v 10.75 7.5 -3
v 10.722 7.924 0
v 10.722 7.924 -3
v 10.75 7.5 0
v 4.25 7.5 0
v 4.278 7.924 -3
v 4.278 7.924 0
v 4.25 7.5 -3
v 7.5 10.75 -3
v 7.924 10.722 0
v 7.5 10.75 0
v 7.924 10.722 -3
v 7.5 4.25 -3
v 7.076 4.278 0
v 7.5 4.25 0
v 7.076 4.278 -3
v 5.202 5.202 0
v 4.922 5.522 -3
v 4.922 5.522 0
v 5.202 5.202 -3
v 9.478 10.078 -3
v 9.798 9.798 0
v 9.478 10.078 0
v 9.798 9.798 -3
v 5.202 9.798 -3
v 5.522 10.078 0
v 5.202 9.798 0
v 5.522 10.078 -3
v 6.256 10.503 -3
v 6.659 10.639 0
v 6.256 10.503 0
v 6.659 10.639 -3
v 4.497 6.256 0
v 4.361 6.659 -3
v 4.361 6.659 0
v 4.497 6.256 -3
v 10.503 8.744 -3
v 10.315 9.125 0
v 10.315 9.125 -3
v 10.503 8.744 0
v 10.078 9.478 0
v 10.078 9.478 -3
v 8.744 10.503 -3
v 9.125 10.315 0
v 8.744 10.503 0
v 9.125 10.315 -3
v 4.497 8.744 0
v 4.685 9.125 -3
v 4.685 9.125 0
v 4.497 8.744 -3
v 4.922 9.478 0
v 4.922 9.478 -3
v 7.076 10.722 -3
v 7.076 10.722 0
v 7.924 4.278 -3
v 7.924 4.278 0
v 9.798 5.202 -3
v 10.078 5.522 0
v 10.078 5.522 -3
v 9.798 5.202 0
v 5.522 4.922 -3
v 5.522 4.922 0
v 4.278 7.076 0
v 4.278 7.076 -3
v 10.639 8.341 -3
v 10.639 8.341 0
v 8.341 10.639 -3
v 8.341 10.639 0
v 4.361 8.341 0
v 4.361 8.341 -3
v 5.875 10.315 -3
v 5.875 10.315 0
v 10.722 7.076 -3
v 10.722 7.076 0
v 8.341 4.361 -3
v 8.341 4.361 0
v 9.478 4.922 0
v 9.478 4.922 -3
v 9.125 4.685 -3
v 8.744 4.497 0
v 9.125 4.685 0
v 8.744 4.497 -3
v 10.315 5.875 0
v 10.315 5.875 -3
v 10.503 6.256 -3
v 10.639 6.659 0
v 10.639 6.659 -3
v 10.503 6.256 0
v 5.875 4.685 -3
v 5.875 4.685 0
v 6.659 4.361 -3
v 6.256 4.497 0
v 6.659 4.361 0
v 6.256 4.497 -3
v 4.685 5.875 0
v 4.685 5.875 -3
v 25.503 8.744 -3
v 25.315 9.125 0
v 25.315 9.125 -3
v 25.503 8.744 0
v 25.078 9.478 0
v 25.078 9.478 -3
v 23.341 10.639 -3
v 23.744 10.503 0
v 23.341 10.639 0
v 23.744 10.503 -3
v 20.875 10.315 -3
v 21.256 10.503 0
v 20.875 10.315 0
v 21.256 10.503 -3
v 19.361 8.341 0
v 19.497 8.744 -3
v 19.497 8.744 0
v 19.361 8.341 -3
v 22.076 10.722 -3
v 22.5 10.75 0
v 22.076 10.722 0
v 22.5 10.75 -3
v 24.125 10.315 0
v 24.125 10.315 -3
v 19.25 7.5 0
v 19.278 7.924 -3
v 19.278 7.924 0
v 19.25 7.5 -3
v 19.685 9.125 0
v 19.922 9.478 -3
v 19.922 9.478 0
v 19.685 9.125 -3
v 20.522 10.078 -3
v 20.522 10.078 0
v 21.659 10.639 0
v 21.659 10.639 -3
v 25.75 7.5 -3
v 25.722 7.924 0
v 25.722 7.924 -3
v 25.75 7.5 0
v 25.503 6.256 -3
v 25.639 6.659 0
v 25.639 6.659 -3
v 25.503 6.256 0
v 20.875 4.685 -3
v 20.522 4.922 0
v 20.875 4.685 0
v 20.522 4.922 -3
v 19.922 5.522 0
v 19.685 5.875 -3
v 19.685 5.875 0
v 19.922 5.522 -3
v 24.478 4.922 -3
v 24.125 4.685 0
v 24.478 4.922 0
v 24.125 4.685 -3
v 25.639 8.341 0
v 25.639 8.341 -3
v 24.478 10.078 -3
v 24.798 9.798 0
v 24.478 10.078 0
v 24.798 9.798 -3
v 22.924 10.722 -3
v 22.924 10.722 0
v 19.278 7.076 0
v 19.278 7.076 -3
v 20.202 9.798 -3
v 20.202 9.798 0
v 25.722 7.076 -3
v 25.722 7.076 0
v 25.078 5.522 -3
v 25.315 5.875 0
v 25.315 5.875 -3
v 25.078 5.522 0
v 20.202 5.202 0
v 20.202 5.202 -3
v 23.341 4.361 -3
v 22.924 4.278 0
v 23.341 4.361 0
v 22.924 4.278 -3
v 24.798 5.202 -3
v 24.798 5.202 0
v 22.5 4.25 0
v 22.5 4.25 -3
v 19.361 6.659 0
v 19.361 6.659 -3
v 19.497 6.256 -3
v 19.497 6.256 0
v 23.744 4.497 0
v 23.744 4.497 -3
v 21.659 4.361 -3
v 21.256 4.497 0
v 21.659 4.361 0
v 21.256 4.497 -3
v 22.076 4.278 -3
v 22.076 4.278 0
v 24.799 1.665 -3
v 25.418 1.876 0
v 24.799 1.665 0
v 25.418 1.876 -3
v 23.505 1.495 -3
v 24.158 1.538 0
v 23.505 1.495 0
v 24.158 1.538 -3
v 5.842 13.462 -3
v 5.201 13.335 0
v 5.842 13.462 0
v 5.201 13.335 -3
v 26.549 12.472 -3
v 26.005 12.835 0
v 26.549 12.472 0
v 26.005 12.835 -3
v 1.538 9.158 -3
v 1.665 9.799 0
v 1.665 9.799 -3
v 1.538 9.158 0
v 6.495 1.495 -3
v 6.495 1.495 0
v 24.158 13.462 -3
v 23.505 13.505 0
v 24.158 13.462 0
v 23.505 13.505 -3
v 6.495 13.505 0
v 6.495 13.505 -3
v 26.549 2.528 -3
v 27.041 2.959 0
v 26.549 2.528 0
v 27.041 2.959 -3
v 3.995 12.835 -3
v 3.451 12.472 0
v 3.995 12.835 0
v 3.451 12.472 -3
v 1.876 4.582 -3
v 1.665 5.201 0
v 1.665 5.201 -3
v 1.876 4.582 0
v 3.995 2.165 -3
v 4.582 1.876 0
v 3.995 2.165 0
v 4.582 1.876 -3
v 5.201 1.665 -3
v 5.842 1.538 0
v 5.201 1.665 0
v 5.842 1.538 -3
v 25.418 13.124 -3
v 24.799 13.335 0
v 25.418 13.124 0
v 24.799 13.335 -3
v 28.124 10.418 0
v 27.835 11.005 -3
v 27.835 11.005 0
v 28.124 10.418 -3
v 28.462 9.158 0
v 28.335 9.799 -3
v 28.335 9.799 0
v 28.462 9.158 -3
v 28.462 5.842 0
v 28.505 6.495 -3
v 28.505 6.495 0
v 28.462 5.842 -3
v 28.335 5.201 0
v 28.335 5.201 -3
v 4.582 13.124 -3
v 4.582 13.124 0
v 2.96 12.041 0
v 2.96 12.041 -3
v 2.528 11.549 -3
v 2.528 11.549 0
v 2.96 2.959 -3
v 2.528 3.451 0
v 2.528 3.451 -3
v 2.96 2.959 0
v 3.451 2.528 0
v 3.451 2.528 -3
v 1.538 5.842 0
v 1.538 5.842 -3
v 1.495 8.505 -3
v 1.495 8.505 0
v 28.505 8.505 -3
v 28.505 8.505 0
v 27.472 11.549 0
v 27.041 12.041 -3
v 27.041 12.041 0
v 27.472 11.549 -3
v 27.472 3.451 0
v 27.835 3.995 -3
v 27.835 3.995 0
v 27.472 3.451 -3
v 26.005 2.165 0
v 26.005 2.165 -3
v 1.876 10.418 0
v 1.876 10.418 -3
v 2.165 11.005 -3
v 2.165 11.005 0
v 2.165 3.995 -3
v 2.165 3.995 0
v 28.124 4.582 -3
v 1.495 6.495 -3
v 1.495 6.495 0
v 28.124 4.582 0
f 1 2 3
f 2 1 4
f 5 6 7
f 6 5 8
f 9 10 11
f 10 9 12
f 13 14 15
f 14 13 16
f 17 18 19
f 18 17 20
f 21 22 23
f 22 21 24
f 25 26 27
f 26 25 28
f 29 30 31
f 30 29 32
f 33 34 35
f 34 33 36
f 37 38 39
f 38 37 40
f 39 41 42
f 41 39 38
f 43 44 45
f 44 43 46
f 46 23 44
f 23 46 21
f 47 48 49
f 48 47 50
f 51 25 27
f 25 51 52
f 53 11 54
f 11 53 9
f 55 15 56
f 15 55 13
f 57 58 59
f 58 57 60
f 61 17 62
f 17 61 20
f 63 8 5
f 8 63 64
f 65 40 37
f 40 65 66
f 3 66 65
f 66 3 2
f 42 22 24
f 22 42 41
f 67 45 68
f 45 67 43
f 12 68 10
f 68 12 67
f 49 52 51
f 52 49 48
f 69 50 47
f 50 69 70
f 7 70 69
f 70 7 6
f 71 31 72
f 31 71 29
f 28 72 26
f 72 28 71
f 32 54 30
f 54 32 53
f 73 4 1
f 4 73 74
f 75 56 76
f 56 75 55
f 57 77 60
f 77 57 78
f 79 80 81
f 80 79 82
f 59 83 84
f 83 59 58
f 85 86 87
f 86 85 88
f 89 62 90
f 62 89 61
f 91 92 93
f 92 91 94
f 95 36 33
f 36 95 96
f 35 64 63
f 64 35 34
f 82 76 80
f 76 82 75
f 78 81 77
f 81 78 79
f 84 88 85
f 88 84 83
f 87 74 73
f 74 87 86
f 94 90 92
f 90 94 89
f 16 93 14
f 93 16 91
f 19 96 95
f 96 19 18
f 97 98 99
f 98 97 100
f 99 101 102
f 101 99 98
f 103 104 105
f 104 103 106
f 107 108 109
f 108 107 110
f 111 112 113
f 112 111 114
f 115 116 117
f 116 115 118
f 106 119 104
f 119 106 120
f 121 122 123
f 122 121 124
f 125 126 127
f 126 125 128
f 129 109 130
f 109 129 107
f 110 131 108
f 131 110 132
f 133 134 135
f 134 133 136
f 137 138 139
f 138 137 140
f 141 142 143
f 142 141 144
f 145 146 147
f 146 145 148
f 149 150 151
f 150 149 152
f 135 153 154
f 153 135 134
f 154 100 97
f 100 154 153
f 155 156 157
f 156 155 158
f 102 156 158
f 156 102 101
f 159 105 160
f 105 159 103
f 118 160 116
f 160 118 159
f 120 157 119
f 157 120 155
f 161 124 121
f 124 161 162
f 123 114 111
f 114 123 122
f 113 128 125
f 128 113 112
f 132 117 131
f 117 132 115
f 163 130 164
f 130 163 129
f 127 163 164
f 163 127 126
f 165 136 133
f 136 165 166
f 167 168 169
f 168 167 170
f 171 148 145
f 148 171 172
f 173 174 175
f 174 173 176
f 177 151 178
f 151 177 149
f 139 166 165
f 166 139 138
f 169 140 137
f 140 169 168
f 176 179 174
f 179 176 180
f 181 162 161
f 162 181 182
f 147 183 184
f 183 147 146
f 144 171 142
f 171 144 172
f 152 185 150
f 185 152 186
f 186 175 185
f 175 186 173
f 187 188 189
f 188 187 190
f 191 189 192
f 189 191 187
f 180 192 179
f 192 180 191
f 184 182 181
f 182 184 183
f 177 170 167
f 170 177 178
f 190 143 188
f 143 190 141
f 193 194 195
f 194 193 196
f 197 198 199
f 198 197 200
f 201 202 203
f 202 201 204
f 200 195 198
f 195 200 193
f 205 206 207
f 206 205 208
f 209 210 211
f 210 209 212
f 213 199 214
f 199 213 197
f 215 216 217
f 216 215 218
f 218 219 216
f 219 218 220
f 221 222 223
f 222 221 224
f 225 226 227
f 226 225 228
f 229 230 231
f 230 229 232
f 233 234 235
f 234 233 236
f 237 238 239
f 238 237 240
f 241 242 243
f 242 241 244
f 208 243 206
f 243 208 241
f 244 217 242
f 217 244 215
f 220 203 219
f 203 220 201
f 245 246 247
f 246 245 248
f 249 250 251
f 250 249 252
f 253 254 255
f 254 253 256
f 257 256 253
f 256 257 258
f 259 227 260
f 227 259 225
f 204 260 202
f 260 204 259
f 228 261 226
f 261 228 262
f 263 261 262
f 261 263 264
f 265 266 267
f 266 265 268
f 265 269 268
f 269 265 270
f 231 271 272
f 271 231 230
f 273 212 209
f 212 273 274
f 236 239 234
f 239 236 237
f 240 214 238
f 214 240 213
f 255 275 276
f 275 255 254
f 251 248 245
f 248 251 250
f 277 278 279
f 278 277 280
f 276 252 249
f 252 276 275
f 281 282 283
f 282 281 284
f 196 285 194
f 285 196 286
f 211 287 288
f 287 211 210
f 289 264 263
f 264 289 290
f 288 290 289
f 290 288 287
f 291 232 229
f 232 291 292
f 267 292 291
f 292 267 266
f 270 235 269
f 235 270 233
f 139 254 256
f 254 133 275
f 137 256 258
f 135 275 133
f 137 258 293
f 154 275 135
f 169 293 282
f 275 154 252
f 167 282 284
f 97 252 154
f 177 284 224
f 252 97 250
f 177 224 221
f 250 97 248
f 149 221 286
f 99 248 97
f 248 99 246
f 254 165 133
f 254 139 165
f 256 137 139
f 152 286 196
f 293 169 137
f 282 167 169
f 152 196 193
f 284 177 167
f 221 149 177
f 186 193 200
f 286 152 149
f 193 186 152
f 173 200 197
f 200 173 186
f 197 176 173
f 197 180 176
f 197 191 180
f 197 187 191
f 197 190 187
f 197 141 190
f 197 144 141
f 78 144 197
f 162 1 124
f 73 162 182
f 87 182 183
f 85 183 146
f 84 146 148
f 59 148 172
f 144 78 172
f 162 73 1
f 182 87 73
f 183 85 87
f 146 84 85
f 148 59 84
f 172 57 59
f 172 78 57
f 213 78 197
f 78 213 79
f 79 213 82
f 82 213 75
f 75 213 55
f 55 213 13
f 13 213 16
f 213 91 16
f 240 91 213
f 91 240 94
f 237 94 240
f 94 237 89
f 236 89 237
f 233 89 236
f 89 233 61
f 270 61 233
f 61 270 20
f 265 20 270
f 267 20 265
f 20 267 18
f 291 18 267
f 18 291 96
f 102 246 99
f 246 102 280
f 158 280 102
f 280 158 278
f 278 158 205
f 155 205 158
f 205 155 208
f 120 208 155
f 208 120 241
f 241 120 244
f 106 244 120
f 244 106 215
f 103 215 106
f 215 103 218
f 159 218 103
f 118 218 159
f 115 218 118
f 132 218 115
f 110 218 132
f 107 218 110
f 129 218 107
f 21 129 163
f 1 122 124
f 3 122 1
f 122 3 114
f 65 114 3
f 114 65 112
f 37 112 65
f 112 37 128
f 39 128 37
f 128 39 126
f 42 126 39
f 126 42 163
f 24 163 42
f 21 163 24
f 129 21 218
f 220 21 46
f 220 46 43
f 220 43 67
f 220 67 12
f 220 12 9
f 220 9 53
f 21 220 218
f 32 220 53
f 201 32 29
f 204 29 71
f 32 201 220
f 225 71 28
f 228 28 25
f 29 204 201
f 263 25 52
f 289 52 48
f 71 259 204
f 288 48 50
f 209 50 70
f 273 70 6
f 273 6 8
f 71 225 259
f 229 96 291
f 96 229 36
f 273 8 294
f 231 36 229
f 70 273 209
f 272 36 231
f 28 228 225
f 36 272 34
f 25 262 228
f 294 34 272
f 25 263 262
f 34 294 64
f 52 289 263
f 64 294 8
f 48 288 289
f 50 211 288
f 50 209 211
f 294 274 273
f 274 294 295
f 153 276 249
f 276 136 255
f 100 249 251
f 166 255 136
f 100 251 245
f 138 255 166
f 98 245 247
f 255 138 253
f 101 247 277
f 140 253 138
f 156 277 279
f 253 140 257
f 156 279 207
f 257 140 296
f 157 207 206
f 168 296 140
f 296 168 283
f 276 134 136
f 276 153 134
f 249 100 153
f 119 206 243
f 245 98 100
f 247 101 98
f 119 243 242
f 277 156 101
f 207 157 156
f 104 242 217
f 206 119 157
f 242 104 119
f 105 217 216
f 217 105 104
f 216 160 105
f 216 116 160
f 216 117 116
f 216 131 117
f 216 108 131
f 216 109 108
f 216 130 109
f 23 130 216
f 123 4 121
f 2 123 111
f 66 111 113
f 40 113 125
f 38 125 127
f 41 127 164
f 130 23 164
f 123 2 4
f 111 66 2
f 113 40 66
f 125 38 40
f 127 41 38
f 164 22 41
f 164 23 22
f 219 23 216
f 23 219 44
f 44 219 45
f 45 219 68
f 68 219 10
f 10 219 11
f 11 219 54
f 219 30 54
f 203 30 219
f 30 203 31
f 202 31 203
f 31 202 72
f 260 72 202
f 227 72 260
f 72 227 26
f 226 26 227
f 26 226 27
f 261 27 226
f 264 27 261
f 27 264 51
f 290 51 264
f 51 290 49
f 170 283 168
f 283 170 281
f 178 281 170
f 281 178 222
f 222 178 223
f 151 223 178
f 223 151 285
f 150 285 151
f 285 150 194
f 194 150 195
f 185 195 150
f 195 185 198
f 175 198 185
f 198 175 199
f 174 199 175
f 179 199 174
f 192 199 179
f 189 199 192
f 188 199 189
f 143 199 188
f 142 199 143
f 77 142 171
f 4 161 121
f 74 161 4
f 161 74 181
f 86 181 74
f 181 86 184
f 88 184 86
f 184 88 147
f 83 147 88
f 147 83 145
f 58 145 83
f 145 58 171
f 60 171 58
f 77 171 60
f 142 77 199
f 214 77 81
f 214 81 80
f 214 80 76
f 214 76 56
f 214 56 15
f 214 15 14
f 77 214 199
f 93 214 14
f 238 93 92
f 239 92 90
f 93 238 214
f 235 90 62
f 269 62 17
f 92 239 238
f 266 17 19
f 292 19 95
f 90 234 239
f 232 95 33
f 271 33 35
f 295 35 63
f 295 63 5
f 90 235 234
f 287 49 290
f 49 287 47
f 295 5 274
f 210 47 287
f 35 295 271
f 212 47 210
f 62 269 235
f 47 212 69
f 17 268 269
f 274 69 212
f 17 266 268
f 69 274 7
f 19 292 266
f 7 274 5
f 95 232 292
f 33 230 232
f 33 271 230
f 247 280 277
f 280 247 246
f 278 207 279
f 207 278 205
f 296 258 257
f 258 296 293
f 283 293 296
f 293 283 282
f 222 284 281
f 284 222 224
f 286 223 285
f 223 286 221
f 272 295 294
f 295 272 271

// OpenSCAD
// Generated by SolidPython 1.1.3 on 2022-09-14 10:10:24
$fn = 48;


difference() {
	union() {
		color(alpha = 1.0000000000, c = "Gold") {
			translate(v = [15.0000000000, 7.5000000000, 0]) {
				rotate(a = [0, 0, 0]) {
					translate(v = [0, 0, -3]) {
						linear_extrude(height = 3) {
							offset(r = 5) {
								square(center = true, size = [17.0100000000, 2.0100000000]);
							}
						}
					}
				}
			}
		}
	}
	union() {
		color(alpha = 1.0000000000, c = "Gold") {
			translate(v = [7.5000000000, 7.5000000000, 0]) {
				rotate(a = [0, 0, 0]) {
					translate(v = [0, 0, -250]) {
						cylinder(h = 500, r = 3.2500000000);
					}
				}
			}
		}
		color(alpha = 1.0000000000, c = "Gold") {
			translate(v = [22.5000000000, 7.5000000000, 0]) {
				rotate(a = [0, 0, 0]) {
					translate(v = [0, 0, -250]) {
						cylinder(h = 500, r = 3.2500000000);
					}
				}
			}
		}
	}
}
/***********************************************
*********      SolidPython code:      **********
************************************************
 
import subprocess

from solid.objects import *
from solid import scad_render_to_file, scad_render

import os

##################################################################################################################################################
##################################################################################################################################################
##################################################################################################################################################
##################################################################################################################################################
######  DIMENSION STUFF
##################################################################################################################################################
##################################################################################################################################################
##################################################################################################################################################
##################################################################################################################################################


mode = "3DPR"
#mode = "LAZE"
#mode = "TURE"
#mode = ""


######  Countersunk
countersunkM = []
WIDTH = 0
DEPTH = 1
countersunkM1width = 0; countersunkM1depth = 0; countersunkM2width = 0; countersunkM2depth = 0
countersunkM3width = 0
countersunkM3depth = 0
countersunkM4width = 0
countersunkM4depth = 0
countersunkM5width = 0
countersunkM5depth = 0
countersunkM6width = 0
countersunkM6depth = 0

######  Holes
holeM = []
holeM1 = 0
holeM2 = 0
holeM3 = 0
holeM4 = 0
holeM5 = 0
holeM6 = 0

######  Nuts
nutM = []
NUTWIDTH = 0
NUTDEPTH = 1
nutM1width = 0
nutM1depth = 0
nutM2width = 0
nutM2depth = 0
nutM3width = 0
nutM3depth = 0
nutM4width = 0
nutM4depth = 0
nutM5width = 0
nutM5depth = 0
nutM6width = 0
nutM6depth = 0

######  OOEB
ooebPinWidth = 0
ooebPinWidthWide = 0


######  Colors
colDefault = "Gold"

colOOEBbase = colDefault

colLEDRed = "red"
colWire = "gray"
    ######  Resistor
colRes = list()
colResistor = "beige"

colResBlack = "black"
colRes.append(colResBlack)
colResBrown = "brown"
colRes.append(colResBrown)
colResRed = "red"
colRes.append(colResRed)
colResOrange = "orange"
colRes.append(colResOrange)
colResYellow = "yellow"
colRes.append(colResYellow)
colResGreen = "green"
colRes.append(colResGreen)
colResBlue = "blue"
colRes.append(colResBlue)
colResPurple = "purple"
colRes.append(colResPurple)
colResGray = "gray"
colRes.append(colResGray)
colResWhite = "white"
colRes.append(colResWhite)





def changeMode(m="3DPR"):
    #print("####################################################      CHANGING MODES TO: " + m)
    global mode
    mode = m
    ######  Countersunk
    global countersunkM, countersunkM1width, countersunkM1depth, countersunkM2width, countersunkM2depth, countersunkM3width, countersunkM3depth, countersunkM4width, countersunkM4depth, countersunkM5width, countersunkM5depth, countersunkM6width, countersunkM6depth
    countersunkM = []
    countersunkM.append([0,0])
    countersunkM1width = 0 if mode== "3DPR" else 0
    countersunkM1depth = 0 if mode== "3DPR" else 0
    countersunkM.append([countersunkM1width,countersunkM1depth])
    countersunkM2width = 0 if mode== "3DPR" else 0
    countersunkM2depth = 0 if mode== "3DPR" else 0
    countersunkM.append([countersunkM2width,countersunkM2depth])
    countersunkM3width = 5.5/2+0.6 if mode== "3DPR" else 5.5/2
    countersunkM3depth = 1.7 if mode== "3DPR" else 1.7
    countersunkM.append([countersunkM3width,countersunkM3depth])
    countersunkM4width = 0 if mode== "3DPR" else 0
    countersunkM4depth = 0 if mode== "3DPR" else 0
    countersunkM.append([countersunkM4width,countersunkM4depth])
    countersunkM5width = 0 if mode== "3DPR" else 0
    countersunkM5depth = 0 if mode== "3DPR" else 0
    countersunkM.append([countersunkM5width,countersunkM5depth])
    countersunkM6width = 0 if mode== "3DPR" else 0
    countersunkM6depth = 0 if mode== "3DPR" else 0
    countersunkM.append([countersunkM6width,countersunkM6depth])
    ######  Holes
    global holeM, holeM1, holeM2, holeM3, holeM4, holeM5, holeM6, holeM7, holeM8
    holeM = []
    holeM1 = 1.2/2 if mode== "3DPR" else 1/2
    holeM2 = 2.3/2 if mode== "3DPR" else 2/2
    holeM3 = 3.4/2 if mode== "3DPR" else 3/2
    holeM4 = 4.4/2 if mode== "3DPR" else 4/2
    holeM5 = 5.4/2 if mode== "3DPR" else 5/2
    holeM6 = 6.5/2 if mode== "3DPR" else 6/2
    holeM7 = 7.5/2 if mode== "3DPR" else 7/2
    holeM8 = 8.6/2 if mode== "3DPR" else 8/2
    holeM.append(0)
    holeM.append(holeM1)
    holeM.append(holeM2)
    holeM.append(holeM3)
    holeM.append(holeM4)
    holeM.append(holeM5)
    holeM.append(holeM6)
    holeM.append(holeM7)
    holeM.append(holeM8)
    #####  Nuts
    global nutM, nutM1width, nutM1depth, nutM2width, nutM2depth, nutM3width, nutM3depth, nutM4width, nutM4depth, nutM5width, nutM5depth, nutM6width, nutM6depth
    nutM = []
    nutM.append([0,0]) 
    #M1 Nut
    nutM1width = 0
    nutM1depth = 0
    nutM.append([nutM1width,nutM1depth])    
    #M2 Nut
    nutM2width = 0
    nutM2depth = 0
    nutM.append([nutM2width,nutM2depth])    
    #M3 Nut
    nutM3width = 6.05 if mode== "3DPR" else 5.5
    nutM3depth = 2.5 if mode== "3DPR" else 2.5
    nutM.append([nutM3width,nutM3depth])    
    #M4 Nut
    nutM4width = 0
    nutM4depth = 0
    nutM.append([nutM4width,nutM4depth])    
    #M5 Nut
    nutM5width = 0
    nutM5depth = 0
    nutM.append([nutM5width,nutM5depth])    
    #M6 Nut
    nutM6width = 11 if mode== "3DPR" else 10
    nutM6depth = 5 if mode== "3DPR" else 5
    nutM.append([nutM6width,nutM6depth])    

    ######  OOEB
    global ooebPinWidth,  ooebPinWidthWide

    ooebPinWidth = 0.6
    if(mode=="3DPR" or mode=="LAZE"):
        ooebPinWidth = 0.6 + 0.6
    ooebPinWidthWide = 1.2
    if(mode=="3DPR" or mode=="LAZE"):
        ooebPinWidthWide = 1.2 + 0.6


changeMode()


""""    
holeM12D = s=="3DPR" ? 1.4/2 : 1.2/2;
holeM16D = s=="3DPR" ? 1.8/2 : 1.6/2;
holeM2 = s=="3DPR" ? 2.3/2 : 2/2;
holeM25D = s=="3DPR" ? 2.8/2 : 2.5/2;
holeM27D = s=="3DPR" ? 3.1/2 : 2.7/2;    
holeM3 = s=="3DPR" ? 3.4/2 : 3/2;
holeM35D = s=="3DPR" ? 3.9/2 : 35/2;
holeM4 = s=="3DPR" ? 4.4/2 : 4/2;
holeM5 = s=="3DPR" ? 5.4/2 : 5/2;
holeM6 = s=="3DPR" ? 6.5/2 : 6/2;
holeM6Minus = s=="3DPR" ? 5.8/2 : 5.9/2;
holeM7 = s=="3DPR" ? 7.5/2 : 7/2;
holeM8 = s=="3DPR" ? 8.6/2 : 8/2;
holeM9 = s=="3DPR" ? 9.6/2 : 9/2;
holeM10 = s=="3DPR" ? 10.6/2 : 10/2;
holeM11 = s=="3DPR" ? 11.6/2 : 11/2;
holeM12 = s=="3DPR" ? 12.6/2 : 12/2;
holeM13 = s=="3DPR" ? 13.6/2 : 13/2;
holeM14 = s=="3DPR" ? 14.6/2 : 14/2;
holeM15 = s=="3DPR" ? 15.6/2 : 15/2;
holeM16 = s=="3DPR" ? 16.6/2 : 16/2;
holeM17 = s=="3DPR" ? 17.6/2 : 17/2;
holeM18 = s=="3DPR" ? 18.6/2 : 18/2;
holeM19 = s=="3DPR" ? 19.6/2 : 19/2;
holeM20 = s=="3DPR" ? 20.6/2 : 20/2;
"""

##################################################################################################################################################
##################################################################################################################################################
##################################################################################################################################################
##################################################################################################################################################
######  REGULAR STUFF
##################################################################################################################################################
##################################################################################################################################################
##################################################################################################################################################
##################################################################################################################################################


def setMode(mode="3DPR"):
    changeMode(mode)

def getMode():
    return mode



def saveToScad(fileName, parts):
    dir =  os.path.dirname(os.path.abspath(fileName))
    Path(dir).mkdir(parents=True, exist_ok=True)
    file_out = scad_render_to_file(parts, fileName, file_header=f'$fn = 48;')


def saveToDxf(fileIn, fileOut=""):
    if fileOut == "":
        fileOut = fileIn.replace(".scad",".dxf")
    saveToFile(fileIn, fileOut)
    
def saveToPng(fileIn, fileOut="",extra="--render"):
    if fileOut == "":
        fileOut = fileIn.replace(".scad",".png")
    saveToFile(fileIn, fileOut)

def saveToStl(fileIn, fileOut=""):
    if fileOut == "":
        fileOut = fileIn.replace(".scad",".stl")
    saveToFile(fileIn, fileOut)
    
def saveToSvg(fileIn, fileOut=""):
    if fileOut == "":
        fileOut = fileIn.replace(".scad",".svg")
    saveToFile(fileIn, fileOut)

def saveToFile(fileIn, fileOut,extra=""):
    extra = extra + " --colorscheme Tomorrow"

    launchStr = 'openscad -o "' + fileOut + '"' + extra + ' "' + fileIn + '"'
    print("            saveToFile launch string: " + launchStr)
    subprocess.run(launchStr)
    x=0



def insert(item,pos=[None,None,None],x=0,y=0,z=0,ex=0,size=[None,None,None],length=0,rot=[None,None,None],rotX=0,rotY=0,rotZ=0,width=0,height=0,depth=100,rad=0,rad2=0,color=colDefault,alpha=1,OOwidth=0,OOheight=0,holes=True,negative=True, name=""):
    return OPSCInsert(item,pos,x,y,z,ex,size,length,rot,rotX,rotY,rotZ,width,height,depth,rad,rad2,color,alpha,OOwidth,OOheight,holes,negative,name)


def OPSCInsert(item,pos=[None,None,None],x=0,y=0,z=0,ex=0,size=[None,None,None],length=0,rot=[None,None,None],rotX=0,rotY=0,rotZ=0,width=0,height=0,depth=100,rad=0,rad2=0,col=colDefault,alpha=1,OOwidth=0,OOheight=0,holes=True,negative=True, name=""):
    
    """
        color(color,alpha){
            translate([x,y,z]){
                    rotate([rotX,rotY,rotZ]){
    """
    returnValue = ""

    #print(pos)

    if pos[0] != None:
        x=pos[0]
        y=pos[1]
        z=pos[2]
    if rot[0] != None:
        rotX=rot[0]
        rotY=rot[1]
        rotZ=rot[2]
    
    returnValue = color(col)(translate((x,y,z))(
                            rotate((rotX,rotY,rotZ))(
                                OPSCInsertIf(item,pos,x,y,z,ex,size,length,rot,rotX,rotY,rotZ,width,height,depth,rad,rad2,col,alpha,OOwidth,OOheight,holes,negative,name)
                            )
                        ))
                
    

    return returnValue

def OPSCInsertIf(item,pos=[None,None,None],x=0,y=0,z=0,ex=0,size=[None,None,None],length=0,rot=[None,None,None],rotX=0,rotY=0,rotZ=0,width=0,height=0,depth=100,rad=0,rad2=0,color=colDefault,alpha=1,OOwidth=0,OOheight=0,holes=True,negative=True, name=""):
    returnValue = cube([10,10,10])

    if size[0] != None:
        width=size[0]
        height=size[1]
        depth=size[2]

    #print("    OPSCInsert item:" + str(item) + " at:[" + str(x) + "," + str(y) + "," + str(z) + "] size: [" + str(width) + "," + str(height) + "," + str(depth) + "]")

    if(item=="cube"):
        returnValue =  translate([0,0,-depth/2])(cube([width,height,depth],center=True))
    elif(item=="cylinder"):        
        returnValue = translate([0,0,-depth/2])(cylinder(r=rad,h=depth,center=True))
    elif(item=="sphere"):        
        returnValue = translate([0,0,-rad])(sphere(r=rad))
    elif(item=="plane"):
        if depth == 100:
            returnValue = insert("cube",size=[1000,1000,0.1],color=color)            
        else:
            returnValue = insert("cube",size=[1000,1000,depth],color=color)                        
    elif(item=="cubeRounded"):
        if(rad == 0):
                            rad = 5
        returnValue =  translate([0,0,-depth])(
                        linear_extrude(height=depth)(                        
                            offset(r=rad)(
                                square((width-rad*2+.01,height-rad*2+.01),center=True)
                                )
                            )
        )
    ######  Countersunk
    elif(item == "countersunkM1" or item == "csM1" ):
        returnValue = OSPCgetCountersunk(rad=1)
    elif(item == "countersunkM2" or item == "csM2" ):
        returnValue = OSPCgetCountersunk(rad=2)
    elif(item == "countersunkM3" or item == "csM3" ):
        returnValue = OSPCgetCountersunk(rad=3)
    elif(item == "countersunkM4" or item == "csM4" ):
        returnValue = OSPCgetCountersunk(rad=4)
    elif(item == "countersunkM5" or item == "csM5" ):
        returnValue = OSPCgetCountersunk(rad=5)
    elif(item == "countersunkM6" or item == "csM6" ):
        returnValue = OSPCgetCountersunk(rad=6)
    elif(item == "countersunk" or item == "cs"):
        returnValue = OSPCgetCountersunk(rad=rad)


    ######  Holes    
    elif(item == "holeM1"):
        returnValue = OSPCgetHole(rad=1)
    elif(item == "holeM2"):
        returnValue = OSPCgetHole(rad=2)
    elif(item == "holeM3"):
        returnValue = OSPCgetHole(rad=3)
    elif(item == "holeM4"):
        returnValue = OSPCgetHole(rad=4)
    elif(item == "holeM5"):
        returnValue = OSPCgetHole(rad=5)
    elif(item == "holeM6"):
        returnValue = OSPCgetHole(rad=6)
    elif(item == "hole"):
        returnValue = OSPCgetHole(rad=rad)

    ######  Nuts
    elif(item == "nutM1"):
        returnValue = OSPCgetNut(rad=1,depth=depth)
    elif(item == "nutM2"):
        returnValue = OSPCgetNut(rad=2,depth=depth)
    elif(item == "nutM3"):
        returnValue = OSPCgetNut(rad=3,depth=depth)
    elif(item == "nutM4"):
        returnValue = OSPCgetNut(rad=4,depth=depth)
    elif(item == "nutM5"):
        returnValue = OSPCgetNut(rad=5,depth=depth)
    elif(item == "nutM6"):
        returnValue = OSPCgetNut(rad=6,depth=depth)
    elif(item == "nut"):
        returnValue = OSPCgetNut(rad=rad,depth=depth)
    return returnValue

                

def OSPCgetHole(rad):
    return translate([0,0,-250])(cylinder(r=holeM[rad],h=500))

def OSPCgetNut(rad,depth):
    depth = nutM[rad][NUTDEPTH] if depth==100 else depth
    returnValue = OPSChexagon(nutM[rad][NUTWIDTH],depth=depth)
    return returnValue

def OSPCgetCountersunk(rad):
    depth=countersunkM[rad][DEPTH]
    returnValue = translate([0,0,-depth])(cylinder(h=depth,r2=countersunkM[rad][WIDTH],r1=holeM[rad]))
    return returnValue

def OPSChexagon(width,depth):
    cutter = item()
    wid=width*2
    cutter.addPos(insert("cube",pos=[wid/2+width/2,0,0],size=[wid,wid,depth]))
    cutter.addPos(insert("cube",pos=[-wid/2-width/2,0,0],size=[wid,wid,depth]))

    cut = cutter.getPart()
    #print(depth)
    returnValue = difference()(
        translate([0,0,-depth/2])(cube([wid,wid,depth],center=True)),
        cut,
        rotate([0,0,60])(cut),
        rotate([0,0,-60])(cut)
    )

    return returnValue




class item:

    def __init__(self):
        self.posItems=list()
        self.negItems=list()

    def isEmpty(self):        
        testString = scad_render(self.getPart())
        #print("test String length: " + str(len(testString)))
        returnValue = False
        if len(testString) == 270:            
            returnValue = True
        return returnValue

    def addPos(self,part):
        self.posItems.append(part)
    def addNeg(self,part):
        self.negItems.append(part)

    def getPart(self):
        returnValue = difference()(
            union()(self.posItems),
            union()(self.negItems)
        )
        return returnValue

    def getLaser(self,start=0,layers=1,thickness=-3,tileDif=200):
        rv= []

        for x in range(layers):
            rv.append(translate([0,x*tileDif,0])(
                    projection()(
                        intersection()(
                            insert("plane",z=start+x*thickness),
                            self.getPart()
                        )
                    )
            )
            )
        return union()(rv)

    def getSplit(self,start=0,depth=6,tileDif=200):
        rv= []

        rv.append(translate([0,0,0])(
            intersection()(
                insert("cube",size=[100,100,depth],z=start),
                self.getPart()
            )
        )
        )

        rv.append(translate([0,tileDif,depth])(
            intersection()(
                insert("cube",size=[100,100,depth],z=start-depth),
                self.getPart()
            )
        )
        )        
        return union()(rv)


 
 
************************************************/
